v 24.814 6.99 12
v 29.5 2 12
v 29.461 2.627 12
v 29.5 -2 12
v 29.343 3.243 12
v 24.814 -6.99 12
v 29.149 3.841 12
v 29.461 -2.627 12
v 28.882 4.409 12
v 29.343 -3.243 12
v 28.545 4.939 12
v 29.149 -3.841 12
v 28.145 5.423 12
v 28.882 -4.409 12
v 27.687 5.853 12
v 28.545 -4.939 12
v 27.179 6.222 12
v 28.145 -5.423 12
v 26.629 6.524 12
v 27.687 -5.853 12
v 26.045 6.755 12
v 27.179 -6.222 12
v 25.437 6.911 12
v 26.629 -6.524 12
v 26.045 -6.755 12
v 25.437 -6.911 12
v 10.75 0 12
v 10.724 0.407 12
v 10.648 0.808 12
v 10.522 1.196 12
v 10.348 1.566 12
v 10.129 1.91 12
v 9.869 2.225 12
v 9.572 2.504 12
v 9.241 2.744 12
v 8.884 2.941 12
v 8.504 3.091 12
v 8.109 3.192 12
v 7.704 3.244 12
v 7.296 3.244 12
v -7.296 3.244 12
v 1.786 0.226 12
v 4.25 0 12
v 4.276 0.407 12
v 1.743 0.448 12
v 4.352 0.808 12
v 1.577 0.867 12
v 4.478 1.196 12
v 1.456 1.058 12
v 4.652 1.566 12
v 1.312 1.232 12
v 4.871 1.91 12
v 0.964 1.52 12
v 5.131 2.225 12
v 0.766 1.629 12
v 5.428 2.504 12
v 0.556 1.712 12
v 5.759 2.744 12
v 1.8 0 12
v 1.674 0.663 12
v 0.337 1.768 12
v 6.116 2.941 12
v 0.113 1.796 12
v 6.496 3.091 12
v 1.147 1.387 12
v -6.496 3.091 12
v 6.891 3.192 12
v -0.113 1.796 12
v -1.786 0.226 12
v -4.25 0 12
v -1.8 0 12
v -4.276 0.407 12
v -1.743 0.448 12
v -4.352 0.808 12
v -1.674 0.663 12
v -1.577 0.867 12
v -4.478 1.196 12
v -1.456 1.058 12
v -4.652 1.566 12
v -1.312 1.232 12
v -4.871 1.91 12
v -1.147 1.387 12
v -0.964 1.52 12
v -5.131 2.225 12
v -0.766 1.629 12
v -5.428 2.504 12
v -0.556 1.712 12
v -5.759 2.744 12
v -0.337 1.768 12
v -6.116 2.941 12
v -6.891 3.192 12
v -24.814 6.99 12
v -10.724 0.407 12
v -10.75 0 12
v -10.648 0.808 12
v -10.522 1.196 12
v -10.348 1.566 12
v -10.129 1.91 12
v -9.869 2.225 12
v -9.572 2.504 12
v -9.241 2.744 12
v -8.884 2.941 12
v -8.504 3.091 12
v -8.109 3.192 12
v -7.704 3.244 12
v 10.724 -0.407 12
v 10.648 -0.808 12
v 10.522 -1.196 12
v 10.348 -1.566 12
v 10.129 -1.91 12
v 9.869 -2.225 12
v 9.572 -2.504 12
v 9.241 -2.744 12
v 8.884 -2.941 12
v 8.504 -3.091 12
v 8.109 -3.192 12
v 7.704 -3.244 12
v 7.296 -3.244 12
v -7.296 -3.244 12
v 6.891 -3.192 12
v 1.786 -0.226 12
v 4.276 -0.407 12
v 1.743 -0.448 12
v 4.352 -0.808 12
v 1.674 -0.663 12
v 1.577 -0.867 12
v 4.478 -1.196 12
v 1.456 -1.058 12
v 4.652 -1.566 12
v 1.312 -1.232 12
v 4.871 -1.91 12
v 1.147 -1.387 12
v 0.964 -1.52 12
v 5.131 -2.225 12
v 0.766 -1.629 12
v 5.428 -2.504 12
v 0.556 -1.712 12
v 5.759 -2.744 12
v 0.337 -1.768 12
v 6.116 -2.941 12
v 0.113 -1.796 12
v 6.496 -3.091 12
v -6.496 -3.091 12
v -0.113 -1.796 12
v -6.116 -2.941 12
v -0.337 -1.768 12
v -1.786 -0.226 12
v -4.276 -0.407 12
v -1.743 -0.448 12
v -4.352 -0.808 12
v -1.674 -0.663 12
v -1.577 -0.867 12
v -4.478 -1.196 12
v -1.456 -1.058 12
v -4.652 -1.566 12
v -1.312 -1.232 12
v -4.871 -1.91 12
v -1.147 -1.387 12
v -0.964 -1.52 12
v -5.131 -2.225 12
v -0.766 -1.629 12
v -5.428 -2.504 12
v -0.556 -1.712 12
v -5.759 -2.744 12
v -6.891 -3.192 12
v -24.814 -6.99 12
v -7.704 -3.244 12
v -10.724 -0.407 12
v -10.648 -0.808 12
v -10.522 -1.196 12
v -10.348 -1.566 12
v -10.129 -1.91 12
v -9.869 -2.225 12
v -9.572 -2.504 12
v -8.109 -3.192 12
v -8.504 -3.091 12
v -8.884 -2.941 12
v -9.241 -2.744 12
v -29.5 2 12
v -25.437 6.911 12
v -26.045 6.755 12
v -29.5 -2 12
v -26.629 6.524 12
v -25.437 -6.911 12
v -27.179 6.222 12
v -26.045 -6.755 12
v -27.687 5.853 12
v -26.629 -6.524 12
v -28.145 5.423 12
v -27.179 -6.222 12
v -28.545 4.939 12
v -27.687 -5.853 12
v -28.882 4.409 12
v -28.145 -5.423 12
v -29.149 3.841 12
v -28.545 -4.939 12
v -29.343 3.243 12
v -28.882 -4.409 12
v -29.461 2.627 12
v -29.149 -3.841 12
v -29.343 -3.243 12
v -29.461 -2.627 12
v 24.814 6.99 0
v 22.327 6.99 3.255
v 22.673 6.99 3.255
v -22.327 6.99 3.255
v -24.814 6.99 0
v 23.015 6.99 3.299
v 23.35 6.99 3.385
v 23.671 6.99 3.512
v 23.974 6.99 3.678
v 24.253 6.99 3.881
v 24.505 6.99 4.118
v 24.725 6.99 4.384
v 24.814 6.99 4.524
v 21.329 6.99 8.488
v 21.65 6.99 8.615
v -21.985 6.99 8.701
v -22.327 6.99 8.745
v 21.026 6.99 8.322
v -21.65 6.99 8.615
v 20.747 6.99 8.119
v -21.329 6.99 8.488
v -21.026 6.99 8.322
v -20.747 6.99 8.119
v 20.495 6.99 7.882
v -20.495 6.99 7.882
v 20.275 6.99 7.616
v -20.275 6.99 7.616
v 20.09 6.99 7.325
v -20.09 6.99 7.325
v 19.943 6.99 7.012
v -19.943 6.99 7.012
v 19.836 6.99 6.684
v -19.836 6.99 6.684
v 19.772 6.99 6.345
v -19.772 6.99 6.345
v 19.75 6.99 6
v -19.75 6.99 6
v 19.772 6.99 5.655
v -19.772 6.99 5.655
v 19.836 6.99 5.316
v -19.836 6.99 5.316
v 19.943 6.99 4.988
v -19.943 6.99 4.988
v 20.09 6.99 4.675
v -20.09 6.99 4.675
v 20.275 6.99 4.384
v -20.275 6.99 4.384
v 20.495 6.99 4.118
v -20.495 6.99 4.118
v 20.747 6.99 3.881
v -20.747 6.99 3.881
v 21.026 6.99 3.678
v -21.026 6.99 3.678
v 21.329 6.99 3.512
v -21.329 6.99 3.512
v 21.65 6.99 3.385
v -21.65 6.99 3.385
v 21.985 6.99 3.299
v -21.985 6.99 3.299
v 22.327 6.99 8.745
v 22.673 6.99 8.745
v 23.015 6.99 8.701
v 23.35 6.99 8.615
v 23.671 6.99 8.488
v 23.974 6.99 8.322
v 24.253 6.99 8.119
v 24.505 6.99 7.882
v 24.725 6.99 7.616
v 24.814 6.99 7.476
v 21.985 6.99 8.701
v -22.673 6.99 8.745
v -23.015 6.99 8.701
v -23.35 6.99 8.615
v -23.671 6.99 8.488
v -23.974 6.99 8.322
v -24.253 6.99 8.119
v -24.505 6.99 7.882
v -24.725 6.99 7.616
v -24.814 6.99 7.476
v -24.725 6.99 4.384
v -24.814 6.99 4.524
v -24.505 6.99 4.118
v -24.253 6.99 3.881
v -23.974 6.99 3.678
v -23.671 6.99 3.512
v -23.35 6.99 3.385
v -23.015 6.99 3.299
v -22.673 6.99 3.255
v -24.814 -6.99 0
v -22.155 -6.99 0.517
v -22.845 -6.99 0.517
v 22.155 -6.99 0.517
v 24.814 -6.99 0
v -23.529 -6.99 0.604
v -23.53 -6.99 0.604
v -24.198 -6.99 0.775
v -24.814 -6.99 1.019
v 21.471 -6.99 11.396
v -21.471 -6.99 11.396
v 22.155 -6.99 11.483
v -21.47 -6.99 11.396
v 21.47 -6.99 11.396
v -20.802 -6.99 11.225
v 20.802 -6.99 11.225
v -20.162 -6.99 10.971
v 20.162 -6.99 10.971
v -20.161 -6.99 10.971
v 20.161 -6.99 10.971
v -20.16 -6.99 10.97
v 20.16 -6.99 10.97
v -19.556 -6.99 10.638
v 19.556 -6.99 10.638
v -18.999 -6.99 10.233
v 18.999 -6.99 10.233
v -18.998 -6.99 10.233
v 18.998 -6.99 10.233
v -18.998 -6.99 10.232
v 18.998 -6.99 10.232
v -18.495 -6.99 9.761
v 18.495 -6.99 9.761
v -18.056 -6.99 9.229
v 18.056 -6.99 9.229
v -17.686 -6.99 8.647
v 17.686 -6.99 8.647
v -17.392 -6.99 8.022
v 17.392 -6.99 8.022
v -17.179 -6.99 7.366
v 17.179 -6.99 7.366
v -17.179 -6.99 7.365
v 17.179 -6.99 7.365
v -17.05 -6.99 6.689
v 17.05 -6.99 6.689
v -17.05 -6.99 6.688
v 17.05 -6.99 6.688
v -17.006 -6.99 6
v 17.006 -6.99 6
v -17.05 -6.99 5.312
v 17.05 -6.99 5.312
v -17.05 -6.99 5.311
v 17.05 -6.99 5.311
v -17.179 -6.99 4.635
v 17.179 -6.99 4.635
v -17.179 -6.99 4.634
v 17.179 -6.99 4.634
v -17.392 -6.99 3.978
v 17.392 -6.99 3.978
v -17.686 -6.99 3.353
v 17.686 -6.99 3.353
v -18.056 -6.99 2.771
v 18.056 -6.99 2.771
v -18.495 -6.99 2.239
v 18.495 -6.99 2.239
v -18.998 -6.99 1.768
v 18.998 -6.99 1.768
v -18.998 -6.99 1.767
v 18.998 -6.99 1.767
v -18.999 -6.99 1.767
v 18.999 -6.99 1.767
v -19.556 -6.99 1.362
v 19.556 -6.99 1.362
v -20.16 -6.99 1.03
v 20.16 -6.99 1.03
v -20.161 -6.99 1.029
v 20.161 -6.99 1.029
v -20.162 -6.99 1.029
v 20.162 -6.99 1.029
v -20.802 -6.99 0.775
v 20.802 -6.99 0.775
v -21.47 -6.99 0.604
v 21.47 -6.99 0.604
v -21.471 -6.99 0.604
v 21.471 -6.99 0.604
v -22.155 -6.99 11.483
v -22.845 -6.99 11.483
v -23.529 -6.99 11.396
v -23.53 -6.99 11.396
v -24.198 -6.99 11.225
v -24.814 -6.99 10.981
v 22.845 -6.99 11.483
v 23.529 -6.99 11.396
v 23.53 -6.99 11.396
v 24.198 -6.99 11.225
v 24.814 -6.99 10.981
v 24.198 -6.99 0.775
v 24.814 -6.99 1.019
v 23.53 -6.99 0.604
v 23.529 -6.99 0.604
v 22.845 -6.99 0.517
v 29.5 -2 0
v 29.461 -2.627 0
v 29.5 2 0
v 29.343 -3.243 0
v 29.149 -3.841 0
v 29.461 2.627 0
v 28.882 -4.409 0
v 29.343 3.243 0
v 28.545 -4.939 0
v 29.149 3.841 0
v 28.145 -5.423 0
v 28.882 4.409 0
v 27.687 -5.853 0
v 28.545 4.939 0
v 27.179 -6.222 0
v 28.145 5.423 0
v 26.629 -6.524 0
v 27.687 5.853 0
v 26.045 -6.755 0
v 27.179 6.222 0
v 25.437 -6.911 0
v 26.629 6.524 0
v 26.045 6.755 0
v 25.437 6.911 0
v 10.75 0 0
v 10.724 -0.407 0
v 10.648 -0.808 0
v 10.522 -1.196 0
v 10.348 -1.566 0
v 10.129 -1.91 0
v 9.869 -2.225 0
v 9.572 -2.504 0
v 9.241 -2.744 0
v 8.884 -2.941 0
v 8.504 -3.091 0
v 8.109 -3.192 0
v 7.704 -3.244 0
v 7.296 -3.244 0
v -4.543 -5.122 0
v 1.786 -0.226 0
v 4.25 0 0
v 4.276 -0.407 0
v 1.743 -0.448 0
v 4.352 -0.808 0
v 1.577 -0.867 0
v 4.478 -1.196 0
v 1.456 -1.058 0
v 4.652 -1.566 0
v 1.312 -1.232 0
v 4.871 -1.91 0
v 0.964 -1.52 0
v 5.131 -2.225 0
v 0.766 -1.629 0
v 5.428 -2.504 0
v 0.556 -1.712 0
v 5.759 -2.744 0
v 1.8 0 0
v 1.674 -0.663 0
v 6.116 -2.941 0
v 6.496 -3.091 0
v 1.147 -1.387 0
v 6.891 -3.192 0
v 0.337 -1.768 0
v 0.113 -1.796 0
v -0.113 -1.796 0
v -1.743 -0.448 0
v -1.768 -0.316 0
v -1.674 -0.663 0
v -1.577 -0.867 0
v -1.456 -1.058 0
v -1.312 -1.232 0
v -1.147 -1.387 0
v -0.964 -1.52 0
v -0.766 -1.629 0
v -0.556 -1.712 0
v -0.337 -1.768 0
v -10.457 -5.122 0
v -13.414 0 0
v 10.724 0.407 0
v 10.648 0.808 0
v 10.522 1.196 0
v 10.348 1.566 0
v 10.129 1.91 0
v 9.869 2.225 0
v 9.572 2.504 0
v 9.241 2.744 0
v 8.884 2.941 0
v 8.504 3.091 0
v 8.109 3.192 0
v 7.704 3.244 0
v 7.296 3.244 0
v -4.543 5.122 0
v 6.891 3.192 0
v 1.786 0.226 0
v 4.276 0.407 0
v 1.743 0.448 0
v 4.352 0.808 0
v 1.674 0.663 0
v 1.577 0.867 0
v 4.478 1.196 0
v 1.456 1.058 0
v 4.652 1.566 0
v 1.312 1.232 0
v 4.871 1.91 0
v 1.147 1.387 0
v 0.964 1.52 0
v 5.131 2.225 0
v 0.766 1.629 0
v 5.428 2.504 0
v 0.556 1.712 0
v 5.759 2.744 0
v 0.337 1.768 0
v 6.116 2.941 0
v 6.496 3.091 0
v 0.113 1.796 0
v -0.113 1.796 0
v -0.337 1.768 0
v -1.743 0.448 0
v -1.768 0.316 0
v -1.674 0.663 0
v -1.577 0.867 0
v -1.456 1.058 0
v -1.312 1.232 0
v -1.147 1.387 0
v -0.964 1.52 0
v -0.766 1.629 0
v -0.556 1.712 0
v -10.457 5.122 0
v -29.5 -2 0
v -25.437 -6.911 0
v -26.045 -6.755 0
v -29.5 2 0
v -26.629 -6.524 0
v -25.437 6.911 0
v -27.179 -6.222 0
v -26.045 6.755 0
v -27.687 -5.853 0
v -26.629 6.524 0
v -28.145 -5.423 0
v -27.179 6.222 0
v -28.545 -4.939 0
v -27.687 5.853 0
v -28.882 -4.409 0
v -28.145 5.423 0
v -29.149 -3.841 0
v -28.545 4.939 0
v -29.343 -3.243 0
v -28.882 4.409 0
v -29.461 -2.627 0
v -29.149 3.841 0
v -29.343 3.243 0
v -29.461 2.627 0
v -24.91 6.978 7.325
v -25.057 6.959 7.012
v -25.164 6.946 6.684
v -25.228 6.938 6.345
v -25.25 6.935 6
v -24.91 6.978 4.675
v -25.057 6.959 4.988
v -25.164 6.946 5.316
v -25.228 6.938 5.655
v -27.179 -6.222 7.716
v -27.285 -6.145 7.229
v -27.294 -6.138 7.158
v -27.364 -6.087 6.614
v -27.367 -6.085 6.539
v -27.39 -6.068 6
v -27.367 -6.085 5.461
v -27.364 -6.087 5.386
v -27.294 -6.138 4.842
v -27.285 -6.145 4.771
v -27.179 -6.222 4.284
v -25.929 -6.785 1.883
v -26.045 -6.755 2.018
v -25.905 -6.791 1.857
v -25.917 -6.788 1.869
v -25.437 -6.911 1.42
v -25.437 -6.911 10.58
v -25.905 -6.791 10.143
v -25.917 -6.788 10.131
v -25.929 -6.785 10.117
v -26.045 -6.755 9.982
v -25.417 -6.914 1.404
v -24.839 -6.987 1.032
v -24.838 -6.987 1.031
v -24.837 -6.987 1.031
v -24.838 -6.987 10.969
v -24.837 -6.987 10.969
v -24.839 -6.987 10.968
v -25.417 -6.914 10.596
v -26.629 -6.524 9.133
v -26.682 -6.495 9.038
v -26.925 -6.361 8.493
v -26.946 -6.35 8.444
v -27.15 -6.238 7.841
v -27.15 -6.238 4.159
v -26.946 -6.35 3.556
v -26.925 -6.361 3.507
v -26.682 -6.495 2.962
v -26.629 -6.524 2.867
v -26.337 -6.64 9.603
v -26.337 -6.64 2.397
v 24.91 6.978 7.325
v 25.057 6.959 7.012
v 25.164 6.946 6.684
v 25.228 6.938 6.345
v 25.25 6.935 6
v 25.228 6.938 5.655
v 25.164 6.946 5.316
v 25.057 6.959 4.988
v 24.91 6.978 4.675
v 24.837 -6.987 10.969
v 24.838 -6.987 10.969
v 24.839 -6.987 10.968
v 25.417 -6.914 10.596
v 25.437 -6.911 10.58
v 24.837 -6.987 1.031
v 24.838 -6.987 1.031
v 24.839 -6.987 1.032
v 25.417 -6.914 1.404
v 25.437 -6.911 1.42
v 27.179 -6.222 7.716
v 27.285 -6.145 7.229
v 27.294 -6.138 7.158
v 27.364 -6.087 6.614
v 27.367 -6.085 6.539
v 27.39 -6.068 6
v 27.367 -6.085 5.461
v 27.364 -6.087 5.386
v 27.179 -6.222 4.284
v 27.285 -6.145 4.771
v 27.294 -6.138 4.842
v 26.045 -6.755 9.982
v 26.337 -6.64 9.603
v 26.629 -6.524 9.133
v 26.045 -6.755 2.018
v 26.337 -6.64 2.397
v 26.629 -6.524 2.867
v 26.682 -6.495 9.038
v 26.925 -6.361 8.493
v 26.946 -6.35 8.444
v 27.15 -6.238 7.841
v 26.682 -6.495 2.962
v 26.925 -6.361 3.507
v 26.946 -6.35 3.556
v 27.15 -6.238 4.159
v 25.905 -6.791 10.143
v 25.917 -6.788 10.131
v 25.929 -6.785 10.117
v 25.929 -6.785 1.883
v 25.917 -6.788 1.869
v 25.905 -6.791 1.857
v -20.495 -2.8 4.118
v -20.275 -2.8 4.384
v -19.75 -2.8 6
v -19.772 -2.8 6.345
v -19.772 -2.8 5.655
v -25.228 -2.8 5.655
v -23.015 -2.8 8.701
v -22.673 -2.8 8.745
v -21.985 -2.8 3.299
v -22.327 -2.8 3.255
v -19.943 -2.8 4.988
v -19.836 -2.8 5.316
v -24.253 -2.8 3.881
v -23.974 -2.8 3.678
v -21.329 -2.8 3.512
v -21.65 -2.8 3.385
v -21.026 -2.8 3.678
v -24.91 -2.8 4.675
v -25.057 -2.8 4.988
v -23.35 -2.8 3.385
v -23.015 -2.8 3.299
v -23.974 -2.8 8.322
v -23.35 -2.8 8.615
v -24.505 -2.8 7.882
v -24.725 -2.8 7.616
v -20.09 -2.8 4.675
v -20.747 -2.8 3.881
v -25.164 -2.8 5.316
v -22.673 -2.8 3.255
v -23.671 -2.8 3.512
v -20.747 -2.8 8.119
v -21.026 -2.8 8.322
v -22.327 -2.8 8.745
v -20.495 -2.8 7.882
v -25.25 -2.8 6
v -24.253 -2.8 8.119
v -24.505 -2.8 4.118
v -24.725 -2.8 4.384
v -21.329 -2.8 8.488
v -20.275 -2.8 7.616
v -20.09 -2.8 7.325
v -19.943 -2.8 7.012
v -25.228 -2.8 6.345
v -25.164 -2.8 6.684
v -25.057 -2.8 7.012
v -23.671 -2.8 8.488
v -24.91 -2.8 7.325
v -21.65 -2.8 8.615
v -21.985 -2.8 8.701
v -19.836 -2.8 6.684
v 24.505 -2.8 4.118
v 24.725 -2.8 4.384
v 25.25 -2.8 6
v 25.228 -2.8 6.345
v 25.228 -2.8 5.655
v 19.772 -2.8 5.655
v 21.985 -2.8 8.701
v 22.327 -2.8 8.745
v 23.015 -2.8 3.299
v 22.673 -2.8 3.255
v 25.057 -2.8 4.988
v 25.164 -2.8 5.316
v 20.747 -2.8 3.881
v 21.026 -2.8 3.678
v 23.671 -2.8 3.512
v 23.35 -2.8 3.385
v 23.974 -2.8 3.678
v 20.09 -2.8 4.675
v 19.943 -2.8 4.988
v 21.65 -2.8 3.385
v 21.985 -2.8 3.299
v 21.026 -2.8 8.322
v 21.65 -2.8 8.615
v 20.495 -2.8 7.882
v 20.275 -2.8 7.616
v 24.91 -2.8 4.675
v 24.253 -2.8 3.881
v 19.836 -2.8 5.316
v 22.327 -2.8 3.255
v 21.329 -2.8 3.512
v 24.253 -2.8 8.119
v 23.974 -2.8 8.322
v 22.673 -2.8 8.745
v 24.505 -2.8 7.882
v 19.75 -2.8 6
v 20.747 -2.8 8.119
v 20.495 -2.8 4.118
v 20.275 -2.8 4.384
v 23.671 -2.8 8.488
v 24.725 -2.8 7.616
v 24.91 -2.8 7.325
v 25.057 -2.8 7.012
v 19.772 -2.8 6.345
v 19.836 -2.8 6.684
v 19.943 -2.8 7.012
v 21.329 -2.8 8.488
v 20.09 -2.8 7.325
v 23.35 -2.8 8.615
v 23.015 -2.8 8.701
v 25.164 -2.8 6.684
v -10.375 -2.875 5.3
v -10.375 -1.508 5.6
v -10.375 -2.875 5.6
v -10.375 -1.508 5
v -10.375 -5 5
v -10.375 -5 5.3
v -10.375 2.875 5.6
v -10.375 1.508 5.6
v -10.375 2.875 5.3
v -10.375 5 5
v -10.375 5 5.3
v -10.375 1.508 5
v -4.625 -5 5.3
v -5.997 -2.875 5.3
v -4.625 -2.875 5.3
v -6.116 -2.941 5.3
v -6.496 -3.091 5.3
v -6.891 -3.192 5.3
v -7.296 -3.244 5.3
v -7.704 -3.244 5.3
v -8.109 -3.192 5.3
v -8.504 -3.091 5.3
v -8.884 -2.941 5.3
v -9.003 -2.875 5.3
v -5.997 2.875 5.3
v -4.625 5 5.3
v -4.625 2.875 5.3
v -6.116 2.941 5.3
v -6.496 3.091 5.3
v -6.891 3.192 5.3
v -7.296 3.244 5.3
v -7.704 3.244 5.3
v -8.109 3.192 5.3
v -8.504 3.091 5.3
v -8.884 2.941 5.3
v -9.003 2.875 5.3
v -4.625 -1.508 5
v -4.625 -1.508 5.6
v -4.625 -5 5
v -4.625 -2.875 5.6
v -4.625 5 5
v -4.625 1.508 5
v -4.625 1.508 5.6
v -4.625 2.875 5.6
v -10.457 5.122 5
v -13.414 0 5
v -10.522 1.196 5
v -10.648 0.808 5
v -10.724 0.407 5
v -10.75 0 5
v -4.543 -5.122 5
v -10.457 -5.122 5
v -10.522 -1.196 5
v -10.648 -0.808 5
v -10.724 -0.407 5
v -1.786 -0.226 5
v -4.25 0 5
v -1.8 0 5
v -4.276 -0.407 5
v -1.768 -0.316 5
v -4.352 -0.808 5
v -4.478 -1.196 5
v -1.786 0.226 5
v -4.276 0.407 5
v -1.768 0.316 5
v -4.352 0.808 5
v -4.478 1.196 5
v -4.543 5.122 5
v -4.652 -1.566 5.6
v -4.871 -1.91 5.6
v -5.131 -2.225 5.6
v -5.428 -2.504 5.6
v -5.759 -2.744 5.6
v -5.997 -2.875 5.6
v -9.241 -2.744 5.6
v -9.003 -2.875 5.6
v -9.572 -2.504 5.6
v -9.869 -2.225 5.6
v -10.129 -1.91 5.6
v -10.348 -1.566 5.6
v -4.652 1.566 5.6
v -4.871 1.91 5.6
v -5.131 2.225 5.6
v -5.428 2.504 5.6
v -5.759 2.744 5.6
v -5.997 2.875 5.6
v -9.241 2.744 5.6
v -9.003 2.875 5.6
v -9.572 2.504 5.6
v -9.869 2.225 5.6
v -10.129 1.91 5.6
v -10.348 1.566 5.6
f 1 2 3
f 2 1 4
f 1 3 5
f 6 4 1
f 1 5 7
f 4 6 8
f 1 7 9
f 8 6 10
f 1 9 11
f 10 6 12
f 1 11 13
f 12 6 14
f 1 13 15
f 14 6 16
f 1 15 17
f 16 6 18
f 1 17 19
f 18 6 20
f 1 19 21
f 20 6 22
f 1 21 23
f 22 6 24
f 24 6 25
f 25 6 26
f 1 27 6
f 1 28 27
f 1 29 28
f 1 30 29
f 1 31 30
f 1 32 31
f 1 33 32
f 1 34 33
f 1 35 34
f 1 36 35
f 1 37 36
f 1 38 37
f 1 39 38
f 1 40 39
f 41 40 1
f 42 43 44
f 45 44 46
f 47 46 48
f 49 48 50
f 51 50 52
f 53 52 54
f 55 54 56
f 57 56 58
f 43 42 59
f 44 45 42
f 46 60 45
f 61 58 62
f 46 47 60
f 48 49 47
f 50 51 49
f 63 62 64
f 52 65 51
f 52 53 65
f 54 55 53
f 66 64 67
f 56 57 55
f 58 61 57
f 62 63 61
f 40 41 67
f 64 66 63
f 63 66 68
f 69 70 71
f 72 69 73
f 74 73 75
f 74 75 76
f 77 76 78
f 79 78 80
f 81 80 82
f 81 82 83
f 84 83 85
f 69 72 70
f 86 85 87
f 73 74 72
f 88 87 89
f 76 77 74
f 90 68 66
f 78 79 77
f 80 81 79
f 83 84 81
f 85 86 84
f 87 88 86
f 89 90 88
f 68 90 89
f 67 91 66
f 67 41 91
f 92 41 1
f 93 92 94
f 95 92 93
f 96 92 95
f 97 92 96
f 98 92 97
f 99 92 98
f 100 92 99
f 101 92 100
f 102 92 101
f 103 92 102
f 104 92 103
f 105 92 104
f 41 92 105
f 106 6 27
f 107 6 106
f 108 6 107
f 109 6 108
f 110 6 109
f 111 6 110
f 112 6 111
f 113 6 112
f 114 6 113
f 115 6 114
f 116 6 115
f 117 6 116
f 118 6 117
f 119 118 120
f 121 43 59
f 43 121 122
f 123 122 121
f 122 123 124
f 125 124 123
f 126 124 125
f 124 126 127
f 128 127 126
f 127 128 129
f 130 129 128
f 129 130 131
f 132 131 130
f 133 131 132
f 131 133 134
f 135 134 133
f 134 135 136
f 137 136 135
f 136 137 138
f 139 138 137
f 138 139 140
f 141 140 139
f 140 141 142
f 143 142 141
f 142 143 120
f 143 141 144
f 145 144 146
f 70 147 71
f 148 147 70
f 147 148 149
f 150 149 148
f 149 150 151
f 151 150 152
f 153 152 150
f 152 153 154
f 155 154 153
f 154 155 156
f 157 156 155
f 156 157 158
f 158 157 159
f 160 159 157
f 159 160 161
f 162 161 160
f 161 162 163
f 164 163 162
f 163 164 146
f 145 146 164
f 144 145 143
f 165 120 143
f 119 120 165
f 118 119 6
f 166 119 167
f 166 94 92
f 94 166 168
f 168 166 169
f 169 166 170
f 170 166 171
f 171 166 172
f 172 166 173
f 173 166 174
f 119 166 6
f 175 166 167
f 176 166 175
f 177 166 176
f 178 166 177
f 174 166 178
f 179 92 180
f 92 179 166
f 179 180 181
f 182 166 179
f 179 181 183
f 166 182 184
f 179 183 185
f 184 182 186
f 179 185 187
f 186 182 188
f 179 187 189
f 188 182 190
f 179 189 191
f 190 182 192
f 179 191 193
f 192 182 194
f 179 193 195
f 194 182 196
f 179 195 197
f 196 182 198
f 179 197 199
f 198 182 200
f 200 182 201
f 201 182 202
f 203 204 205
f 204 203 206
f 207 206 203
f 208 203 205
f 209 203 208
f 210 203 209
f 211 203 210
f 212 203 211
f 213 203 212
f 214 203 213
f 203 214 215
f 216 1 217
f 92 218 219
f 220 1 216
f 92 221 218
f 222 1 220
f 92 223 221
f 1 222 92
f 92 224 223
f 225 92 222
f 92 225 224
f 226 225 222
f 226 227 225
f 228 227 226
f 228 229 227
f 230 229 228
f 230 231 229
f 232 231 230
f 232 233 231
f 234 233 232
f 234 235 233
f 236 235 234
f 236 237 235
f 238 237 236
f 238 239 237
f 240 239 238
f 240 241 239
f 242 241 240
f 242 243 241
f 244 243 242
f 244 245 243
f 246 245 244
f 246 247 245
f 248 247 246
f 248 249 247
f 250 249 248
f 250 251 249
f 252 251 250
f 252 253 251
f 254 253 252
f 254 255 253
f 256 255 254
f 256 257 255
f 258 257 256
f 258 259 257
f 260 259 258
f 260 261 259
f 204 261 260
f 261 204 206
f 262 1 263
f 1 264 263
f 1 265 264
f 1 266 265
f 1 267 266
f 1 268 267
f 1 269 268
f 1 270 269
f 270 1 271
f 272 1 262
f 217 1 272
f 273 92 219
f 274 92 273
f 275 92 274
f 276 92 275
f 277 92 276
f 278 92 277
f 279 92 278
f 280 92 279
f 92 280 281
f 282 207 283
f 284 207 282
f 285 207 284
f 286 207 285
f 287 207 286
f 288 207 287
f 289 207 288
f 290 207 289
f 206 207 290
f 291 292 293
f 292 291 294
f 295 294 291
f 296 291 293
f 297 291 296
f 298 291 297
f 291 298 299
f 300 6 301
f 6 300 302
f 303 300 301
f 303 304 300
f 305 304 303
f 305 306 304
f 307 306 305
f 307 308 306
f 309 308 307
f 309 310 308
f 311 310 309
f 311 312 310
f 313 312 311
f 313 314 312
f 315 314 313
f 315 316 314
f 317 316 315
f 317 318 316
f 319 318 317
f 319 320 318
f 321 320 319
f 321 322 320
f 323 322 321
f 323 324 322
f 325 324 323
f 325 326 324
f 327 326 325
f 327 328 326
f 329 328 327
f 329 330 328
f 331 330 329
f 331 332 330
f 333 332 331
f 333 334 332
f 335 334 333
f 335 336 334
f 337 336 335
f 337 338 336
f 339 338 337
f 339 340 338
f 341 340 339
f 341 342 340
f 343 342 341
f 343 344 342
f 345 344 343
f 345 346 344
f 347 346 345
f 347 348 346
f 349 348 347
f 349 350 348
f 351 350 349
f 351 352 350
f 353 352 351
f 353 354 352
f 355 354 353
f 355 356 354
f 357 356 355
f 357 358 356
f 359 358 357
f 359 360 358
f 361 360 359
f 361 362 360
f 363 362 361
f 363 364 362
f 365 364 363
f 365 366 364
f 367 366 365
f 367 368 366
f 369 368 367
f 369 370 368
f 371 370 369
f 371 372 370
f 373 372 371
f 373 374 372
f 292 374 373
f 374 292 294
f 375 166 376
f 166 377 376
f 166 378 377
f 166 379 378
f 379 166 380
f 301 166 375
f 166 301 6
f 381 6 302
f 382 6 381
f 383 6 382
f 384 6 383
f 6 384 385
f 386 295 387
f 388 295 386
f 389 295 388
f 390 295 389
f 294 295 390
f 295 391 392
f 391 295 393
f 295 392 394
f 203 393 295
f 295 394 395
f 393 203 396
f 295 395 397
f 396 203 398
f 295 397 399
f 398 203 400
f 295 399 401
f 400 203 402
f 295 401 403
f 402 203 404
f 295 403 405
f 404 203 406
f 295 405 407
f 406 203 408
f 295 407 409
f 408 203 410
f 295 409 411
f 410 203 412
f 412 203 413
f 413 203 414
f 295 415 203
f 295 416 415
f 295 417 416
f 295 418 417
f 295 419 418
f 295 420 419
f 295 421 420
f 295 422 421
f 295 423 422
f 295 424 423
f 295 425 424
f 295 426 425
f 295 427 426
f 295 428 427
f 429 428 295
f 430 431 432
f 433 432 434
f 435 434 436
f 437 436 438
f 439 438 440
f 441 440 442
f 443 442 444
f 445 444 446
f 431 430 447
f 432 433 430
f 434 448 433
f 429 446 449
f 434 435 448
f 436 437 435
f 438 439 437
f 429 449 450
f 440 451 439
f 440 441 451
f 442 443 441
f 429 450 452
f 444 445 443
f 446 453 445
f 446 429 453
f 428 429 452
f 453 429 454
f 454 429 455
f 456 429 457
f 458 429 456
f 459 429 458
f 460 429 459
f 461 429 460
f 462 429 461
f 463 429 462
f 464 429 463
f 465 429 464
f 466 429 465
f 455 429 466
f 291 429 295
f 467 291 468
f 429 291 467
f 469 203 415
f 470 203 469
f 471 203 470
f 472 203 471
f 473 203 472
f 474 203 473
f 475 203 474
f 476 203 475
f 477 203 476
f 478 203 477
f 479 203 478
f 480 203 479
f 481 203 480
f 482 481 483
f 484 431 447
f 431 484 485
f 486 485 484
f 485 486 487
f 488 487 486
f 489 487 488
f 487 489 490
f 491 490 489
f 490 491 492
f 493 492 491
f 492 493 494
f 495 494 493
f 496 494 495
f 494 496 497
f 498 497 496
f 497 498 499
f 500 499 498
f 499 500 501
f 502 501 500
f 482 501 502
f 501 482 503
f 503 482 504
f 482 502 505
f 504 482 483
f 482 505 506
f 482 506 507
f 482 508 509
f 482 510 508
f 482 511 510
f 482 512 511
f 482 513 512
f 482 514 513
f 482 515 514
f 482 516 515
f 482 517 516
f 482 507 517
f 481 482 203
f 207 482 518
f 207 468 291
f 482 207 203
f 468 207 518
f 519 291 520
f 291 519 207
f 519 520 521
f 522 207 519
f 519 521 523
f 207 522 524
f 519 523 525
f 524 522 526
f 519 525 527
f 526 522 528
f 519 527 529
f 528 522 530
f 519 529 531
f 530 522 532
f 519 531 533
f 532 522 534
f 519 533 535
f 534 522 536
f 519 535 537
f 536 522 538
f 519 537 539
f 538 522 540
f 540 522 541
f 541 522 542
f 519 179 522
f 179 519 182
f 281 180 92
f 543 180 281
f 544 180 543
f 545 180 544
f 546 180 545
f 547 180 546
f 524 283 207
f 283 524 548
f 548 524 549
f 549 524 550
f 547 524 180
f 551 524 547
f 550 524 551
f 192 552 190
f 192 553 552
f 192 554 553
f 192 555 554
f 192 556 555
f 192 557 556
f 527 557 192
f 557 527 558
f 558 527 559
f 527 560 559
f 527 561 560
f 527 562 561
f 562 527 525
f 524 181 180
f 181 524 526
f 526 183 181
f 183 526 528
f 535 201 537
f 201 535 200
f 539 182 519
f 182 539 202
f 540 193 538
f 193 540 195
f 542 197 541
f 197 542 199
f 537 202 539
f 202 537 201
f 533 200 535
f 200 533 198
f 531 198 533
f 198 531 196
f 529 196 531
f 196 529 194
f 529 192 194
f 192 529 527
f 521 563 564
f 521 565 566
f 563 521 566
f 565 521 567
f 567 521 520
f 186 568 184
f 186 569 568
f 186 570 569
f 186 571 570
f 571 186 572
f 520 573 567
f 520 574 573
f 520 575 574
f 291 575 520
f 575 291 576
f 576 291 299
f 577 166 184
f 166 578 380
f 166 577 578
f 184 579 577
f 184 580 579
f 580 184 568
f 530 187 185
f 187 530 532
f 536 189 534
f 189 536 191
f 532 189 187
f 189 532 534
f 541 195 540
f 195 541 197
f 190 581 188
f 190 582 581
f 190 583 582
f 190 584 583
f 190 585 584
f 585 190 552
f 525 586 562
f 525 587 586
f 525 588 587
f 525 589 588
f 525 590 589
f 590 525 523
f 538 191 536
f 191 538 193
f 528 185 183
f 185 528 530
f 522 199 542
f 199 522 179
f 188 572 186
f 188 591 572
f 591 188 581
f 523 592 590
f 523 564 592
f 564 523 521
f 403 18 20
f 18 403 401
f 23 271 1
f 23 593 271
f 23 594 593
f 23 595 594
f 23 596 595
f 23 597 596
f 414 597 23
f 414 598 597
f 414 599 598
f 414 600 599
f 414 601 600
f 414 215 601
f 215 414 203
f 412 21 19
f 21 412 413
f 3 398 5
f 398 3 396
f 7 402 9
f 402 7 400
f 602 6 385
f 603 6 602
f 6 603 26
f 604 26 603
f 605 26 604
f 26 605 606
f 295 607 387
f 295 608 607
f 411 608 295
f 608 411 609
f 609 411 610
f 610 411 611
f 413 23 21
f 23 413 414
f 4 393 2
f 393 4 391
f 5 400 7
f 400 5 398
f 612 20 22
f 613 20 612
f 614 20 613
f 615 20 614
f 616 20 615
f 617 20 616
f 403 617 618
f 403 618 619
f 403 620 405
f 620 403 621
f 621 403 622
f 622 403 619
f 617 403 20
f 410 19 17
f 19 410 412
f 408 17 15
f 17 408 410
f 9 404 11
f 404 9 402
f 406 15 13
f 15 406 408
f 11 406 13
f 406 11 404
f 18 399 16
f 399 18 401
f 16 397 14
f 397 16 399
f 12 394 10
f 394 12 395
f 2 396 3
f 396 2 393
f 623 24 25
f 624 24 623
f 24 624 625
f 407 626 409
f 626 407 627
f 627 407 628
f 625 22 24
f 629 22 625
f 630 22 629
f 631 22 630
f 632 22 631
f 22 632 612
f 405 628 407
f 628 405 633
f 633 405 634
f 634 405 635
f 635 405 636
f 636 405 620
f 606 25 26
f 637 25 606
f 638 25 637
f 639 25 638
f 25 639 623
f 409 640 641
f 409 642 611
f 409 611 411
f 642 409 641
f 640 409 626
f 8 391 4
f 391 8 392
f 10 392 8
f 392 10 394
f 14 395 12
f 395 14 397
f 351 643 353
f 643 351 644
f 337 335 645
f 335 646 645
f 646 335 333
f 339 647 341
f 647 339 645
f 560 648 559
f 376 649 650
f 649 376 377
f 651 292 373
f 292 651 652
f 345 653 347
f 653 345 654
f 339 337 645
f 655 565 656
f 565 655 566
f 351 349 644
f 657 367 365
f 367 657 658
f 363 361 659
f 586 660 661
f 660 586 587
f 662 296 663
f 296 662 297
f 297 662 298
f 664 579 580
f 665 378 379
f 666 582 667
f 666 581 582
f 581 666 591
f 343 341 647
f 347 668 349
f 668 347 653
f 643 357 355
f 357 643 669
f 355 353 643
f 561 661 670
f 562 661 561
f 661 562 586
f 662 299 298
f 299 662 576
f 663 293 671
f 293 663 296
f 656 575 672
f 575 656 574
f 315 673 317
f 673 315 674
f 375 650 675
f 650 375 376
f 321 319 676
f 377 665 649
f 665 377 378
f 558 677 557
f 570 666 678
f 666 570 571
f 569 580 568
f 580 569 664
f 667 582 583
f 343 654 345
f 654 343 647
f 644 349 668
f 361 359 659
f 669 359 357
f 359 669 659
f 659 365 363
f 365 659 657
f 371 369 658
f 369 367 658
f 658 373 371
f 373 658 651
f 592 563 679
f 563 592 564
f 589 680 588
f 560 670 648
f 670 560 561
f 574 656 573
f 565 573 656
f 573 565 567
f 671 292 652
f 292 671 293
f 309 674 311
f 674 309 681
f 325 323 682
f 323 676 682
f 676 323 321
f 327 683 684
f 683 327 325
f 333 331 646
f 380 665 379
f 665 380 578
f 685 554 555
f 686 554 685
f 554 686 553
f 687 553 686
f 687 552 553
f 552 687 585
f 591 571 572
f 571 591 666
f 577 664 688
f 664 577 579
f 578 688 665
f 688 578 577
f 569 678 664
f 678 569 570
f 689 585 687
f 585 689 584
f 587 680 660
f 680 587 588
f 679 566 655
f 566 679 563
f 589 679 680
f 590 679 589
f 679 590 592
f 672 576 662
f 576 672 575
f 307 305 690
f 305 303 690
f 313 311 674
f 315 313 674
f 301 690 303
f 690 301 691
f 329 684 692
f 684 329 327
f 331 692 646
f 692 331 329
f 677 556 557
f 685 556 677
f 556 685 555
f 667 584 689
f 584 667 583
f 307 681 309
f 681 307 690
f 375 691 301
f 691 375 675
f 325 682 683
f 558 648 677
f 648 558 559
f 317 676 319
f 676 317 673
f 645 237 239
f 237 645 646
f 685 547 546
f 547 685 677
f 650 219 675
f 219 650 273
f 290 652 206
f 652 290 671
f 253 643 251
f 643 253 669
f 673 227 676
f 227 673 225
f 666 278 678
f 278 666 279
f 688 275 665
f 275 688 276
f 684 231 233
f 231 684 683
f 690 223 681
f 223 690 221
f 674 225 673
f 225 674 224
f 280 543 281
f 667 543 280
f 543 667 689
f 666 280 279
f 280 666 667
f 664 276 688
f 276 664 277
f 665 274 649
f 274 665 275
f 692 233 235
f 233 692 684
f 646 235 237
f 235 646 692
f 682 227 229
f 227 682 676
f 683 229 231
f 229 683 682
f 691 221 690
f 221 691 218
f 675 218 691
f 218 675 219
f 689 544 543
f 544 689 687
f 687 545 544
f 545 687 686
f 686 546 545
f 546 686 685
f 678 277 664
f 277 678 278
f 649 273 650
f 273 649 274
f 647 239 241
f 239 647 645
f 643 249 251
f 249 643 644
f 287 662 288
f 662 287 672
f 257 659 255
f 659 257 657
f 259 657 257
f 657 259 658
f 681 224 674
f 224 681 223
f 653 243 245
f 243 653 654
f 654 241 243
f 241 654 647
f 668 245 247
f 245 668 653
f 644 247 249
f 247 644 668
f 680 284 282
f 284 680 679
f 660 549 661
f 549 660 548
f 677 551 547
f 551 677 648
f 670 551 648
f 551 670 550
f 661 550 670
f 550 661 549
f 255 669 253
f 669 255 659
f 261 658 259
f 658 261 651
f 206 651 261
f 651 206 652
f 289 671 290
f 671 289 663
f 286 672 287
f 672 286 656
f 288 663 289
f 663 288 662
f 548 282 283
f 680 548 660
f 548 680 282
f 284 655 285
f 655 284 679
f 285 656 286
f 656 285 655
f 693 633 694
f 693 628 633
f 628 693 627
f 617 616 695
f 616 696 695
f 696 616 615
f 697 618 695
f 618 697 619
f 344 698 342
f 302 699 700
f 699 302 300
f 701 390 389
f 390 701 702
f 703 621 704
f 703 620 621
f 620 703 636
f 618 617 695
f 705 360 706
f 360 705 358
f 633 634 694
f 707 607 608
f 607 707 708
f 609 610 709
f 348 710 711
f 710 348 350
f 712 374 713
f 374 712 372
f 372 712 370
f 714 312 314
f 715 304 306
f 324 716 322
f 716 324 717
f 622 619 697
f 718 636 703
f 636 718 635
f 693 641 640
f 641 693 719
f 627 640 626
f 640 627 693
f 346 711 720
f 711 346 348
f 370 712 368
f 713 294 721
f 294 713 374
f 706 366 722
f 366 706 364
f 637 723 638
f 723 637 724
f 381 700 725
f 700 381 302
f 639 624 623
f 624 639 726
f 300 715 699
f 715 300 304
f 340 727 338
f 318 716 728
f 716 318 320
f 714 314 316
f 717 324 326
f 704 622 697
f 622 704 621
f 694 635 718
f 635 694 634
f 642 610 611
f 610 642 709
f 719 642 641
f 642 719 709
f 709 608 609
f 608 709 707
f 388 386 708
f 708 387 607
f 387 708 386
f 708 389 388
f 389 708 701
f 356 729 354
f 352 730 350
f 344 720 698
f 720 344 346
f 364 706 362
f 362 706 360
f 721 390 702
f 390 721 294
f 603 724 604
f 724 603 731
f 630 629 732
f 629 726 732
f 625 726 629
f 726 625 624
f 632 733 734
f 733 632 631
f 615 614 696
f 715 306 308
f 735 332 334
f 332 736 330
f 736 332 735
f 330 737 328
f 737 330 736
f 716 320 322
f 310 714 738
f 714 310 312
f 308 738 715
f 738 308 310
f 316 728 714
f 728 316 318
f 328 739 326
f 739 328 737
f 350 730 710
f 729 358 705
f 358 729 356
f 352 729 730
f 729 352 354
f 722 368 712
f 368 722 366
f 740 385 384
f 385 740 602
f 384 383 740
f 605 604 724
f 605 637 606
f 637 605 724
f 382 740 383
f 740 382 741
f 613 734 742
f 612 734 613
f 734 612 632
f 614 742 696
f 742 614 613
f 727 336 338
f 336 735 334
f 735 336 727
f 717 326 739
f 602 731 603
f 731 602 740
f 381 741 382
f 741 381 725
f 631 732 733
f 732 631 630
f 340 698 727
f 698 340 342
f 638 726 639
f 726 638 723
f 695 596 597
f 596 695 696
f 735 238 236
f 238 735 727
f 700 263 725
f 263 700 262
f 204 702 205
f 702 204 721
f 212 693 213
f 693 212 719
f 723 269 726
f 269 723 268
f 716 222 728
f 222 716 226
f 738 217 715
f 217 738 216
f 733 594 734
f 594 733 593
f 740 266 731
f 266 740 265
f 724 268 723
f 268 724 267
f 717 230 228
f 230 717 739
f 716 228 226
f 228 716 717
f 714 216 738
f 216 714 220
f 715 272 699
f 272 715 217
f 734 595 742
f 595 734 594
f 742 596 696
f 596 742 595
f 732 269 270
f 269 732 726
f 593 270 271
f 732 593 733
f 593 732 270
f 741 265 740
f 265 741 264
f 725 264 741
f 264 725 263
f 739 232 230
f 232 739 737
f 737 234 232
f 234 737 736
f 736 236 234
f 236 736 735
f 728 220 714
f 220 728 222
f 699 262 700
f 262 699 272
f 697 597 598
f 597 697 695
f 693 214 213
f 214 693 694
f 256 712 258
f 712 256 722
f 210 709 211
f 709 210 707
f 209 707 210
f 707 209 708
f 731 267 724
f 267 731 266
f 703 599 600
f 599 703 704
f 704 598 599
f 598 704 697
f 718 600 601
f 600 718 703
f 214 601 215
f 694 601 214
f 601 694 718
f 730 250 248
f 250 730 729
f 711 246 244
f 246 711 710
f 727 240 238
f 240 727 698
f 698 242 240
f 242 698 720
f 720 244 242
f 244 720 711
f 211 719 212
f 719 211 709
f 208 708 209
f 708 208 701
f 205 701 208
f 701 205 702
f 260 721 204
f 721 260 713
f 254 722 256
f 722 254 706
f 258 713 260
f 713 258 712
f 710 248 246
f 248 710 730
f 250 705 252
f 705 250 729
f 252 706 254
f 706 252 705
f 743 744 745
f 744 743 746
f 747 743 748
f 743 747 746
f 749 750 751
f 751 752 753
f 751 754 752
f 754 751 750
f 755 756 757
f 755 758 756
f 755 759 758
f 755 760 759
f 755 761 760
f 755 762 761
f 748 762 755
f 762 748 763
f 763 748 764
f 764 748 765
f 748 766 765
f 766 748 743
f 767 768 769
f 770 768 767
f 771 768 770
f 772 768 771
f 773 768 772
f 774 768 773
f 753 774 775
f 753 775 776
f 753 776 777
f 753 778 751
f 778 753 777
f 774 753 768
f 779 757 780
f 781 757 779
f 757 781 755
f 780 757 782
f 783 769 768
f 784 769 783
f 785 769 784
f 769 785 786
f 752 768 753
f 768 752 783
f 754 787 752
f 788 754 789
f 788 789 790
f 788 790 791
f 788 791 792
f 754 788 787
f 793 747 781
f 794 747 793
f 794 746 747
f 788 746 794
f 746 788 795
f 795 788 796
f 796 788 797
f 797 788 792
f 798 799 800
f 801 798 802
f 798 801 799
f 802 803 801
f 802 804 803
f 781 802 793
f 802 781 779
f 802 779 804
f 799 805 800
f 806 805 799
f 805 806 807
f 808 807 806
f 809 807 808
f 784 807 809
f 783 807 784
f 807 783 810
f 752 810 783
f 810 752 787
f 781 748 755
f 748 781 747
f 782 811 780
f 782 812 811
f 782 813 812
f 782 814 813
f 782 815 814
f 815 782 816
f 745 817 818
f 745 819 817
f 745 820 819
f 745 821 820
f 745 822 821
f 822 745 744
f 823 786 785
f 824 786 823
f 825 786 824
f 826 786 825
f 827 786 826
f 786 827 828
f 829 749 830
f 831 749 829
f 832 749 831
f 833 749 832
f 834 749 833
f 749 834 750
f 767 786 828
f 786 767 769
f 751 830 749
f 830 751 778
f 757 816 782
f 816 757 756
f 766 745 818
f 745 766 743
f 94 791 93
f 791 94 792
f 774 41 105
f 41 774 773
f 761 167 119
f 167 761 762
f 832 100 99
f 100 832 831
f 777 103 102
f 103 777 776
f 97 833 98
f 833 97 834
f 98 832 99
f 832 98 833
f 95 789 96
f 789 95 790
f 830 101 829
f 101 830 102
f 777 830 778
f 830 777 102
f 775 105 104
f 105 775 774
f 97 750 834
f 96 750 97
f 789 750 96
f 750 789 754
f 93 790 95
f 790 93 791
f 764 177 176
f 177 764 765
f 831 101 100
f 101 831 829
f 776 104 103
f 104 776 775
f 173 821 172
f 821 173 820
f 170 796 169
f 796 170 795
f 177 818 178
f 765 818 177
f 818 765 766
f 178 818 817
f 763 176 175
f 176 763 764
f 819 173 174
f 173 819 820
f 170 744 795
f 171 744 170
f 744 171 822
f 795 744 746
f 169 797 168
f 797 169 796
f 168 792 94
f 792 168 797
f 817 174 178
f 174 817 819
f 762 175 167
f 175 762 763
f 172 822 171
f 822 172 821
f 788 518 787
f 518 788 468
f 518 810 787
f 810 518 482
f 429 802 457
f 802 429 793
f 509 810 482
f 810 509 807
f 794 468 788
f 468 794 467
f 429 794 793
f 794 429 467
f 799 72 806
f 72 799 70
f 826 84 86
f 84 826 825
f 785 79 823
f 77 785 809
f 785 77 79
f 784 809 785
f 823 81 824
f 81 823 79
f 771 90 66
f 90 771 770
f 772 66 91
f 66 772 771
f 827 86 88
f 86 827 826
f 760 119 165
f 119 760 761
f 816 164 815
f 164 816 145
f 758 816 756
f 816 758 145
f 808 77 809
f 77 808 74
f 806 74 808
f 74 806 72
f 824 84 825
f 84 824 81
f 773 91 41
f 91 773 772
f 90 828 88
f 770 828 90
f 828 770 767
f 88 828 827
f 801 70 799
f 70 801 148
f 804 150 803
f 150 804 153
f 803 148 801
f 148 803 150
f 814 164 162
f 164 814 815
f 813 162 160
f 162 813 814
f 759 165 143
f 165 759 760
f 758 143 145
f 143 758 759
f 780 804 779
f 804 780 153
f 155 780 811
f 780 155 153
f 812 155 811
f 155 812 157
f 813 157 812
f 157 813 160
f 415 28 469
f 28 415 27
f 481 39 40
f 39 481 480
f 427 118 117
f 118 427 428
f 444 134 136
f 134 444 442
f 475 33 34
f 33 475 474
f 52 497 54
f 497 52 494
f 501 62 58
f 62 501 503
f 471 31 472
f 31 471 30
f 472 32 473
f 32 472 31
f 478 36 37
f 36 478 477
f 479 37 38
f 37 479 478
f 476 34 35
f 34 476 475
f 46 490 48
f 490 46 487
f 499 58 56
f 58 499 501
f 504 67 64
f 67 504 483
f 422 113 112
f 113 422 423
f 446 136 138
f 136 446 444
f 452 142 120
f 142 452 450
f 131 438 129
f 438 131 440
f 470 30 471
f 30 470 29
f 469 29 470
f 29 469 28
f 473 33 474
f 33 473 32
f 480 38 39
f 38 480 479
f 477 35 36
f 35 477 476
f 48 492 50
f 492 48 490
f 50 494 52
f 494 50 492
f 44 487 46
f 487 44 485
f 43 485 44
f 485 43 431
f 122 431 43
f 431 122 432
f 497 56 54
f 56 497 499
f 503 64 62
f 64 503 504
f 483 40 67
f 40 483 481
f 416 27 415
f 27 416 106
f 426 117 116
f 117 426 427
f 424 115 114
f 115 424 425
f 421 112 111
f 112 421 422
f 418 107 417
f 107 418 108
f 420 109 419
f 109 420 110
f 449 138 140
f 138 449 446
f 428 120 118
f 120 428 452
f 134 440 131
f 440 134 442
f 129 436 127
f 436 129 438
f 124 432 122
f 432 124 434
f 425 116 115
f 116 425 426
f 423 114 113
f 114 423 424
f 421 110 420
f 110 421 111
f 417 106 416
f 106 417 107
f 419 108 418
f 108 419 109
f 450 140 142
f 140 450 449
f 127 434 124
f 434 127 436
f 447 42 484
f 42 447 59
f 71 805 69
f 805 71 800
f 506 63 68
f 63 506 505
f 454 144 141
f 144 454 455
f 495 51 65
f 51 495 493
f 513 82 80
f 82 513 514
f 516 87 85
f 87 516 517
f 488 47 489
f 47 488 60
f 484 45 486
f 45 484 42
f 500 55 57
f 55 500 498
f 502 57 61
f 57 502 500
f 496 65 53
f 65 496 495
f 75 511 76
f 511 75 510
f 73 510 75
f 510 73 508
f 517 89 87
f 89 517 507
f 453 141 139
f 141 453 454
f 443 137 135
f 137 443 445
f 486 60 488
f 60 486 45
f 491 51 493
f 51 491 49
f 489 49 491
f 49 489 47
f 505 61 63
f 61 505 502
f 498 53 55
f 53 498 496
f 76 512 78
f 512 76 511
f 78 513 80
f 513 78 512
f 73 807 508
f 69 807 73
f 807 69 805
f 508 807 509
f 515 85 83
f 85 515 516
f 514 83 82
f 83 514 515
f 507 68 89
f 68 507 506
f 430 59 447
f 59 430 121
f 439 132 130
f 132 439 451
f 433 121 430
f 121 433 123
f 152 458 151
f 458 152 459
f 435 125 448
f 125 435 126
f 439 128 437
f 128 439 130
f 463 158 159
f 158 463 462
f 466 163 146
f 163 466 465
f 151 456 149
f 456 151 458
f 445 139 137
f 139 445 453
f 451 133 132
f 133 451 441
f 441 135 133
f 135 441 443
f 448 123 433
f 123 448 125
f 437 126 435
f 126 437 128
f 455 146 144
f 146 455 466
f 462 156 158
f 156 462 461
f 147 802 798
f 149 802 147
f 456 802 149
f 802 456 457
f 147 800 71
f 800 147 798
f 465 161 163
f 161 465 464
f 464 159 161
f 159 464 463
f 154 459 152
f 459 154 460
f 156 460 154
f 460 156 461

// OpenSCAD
$fn = 50;


difference() {
	union() {
		hull() {
			translate(v = [-9.5000000000, 2.0000000000, 0]) {
				cylinder(h = 12, r = 5);
			}
			translate(v = [9.5000000000, 2.0000000000, 0]) {
				cylinder(h = 12, r = 5);
			}
			translate(v = [-9.5000000000, -2.0000000000, 0]) {
				cylinder(h = 12, r = 5);
			}
			translate(v = [9.5000000000, -2.0000000000, 0]) {
				cylinder(h = 12, r = 5);
			}
		}
		translate(v = [-15.0000000000, 0.0000000000, 0]) {
			hull() {
				translate(v = [-9.5000000000, 2.0000000000, 0]) {
					cylinder(h = 12, r = 5);
				}
				translate(v = [9.5000000000, 2.0000000000, 0]) {
					cylinder(h = 12, r = 5);
				}
				translate(v = [-9.5000000000, -2.0000000000, 0]) {
					cylinder(h = 12, r = 5);
				}
				translate(v = [9.5000000000, -2.0000000000, 0]) {
					cylinder(h = 12, r = 5);
				}
			}
		}
		translate(v = [15.0000000000, 0.0000000000, 0]) {
			hull() {
				translate(v = [-9.5000000000, 2.0000000000, 0]) {
					cylinder(h = 12, r = 5);
				}
				translate(v = [9.5000000000, 2.0000000000, 0]) {
					cylinder(h = 12, r = 5);
				}
				translate(v = [-9.5000000000, -2.0000000000, 0]) {
					cylinder(h = 12, r = 5);
				}
				translate(v = [9.5000000000, -2.0000000000, 0]) {
					cylinder(h = 12, r = 5);
				}
			}
		}
	}
	union() {
		translate(v = [-22.5000000000, -7.0000000000, 6.0000000000]) {
			rotate(a = [90, 0, 0]) {
				difference() {
					union() {
						#translate(v = [0, 0, -14.0000000000]) {
							cylinder(h = 14, r = 2.2500000000);
						}
						#translate(v = [0, 0, -4.2000000000]) {
							cylinder(h = 4.2000000000, r1 = 2.7500000000, r2 = 5.5000000000);
						}
						#translate(v = [0, 0, -14.0000000000]) {
							cylinder(h = 14, r = 2.7500000000);
						}
						#translate(v = [0, 0, -14.0000000000]) {
							cylinder(h = 14, r = 2.2500000000);
						}
					}
					union();
				}
			}
		}
		translate(v = [22.5000000000, -7.0000000000, 6.0000000000]) {
			rotate(a = [90, 0, 0]) {
				difference() {
					union() {
						#translate(v = [0, 0, -14.0000000000]) {
							cylinder(h = 14, r = 2.2500000000);
						}
						#translate(v = [0, 0, -4.2000000000]) {
							cylinder(h = 4.2000000000, r1 = 2.7500000000, r2 = 5.5000000000);
						}
						#translate(v = [0, 0, -14.0000000000]) {
							cylinder(h = 14, r = 2.7500000000);
						}
						#translate(v = [0, 0, -14.0000000000]) {
							cylinder(h = 14, r = 2.2500000000);
						}
					}
					union();
				}
			}
		}
		translate(v = [-7.5000000000, 0.0000000000, 0]) {
			rotate(a = [0, 0, 0]) {
				difference() {
					union() {
						#translate(v = [-2.8750000000, -5.0000000000, -0.3000000000]) {
							cube(size = [5.7500000000, 10, 0.3000000000]);
						}
						#translate(v = [-2.8750000000, -2.8750000000, -0.6000000000]) {
							cube(size = [5.7500000000, 5.7500000000, 0.3000000000]);
						}
						#translate(v = [-2.8750000000, -5.0000000000, 5]) {
							cube(size = [5.7500000000, 10, 0.3000000000]);
						}
						#translate(v = [-2.8750000000, -2.8750000000, 5.3000000000]) {
							cube(size = [5.7500000000, 5.7500000000, 0.3000000000]);
						}
						#translate(v = [0, 0, -100.0000000000]) {
							cylinder(h = 200, r = 3.2500000000);
						}
						#linear_extrude(height = 5) {
							polygon(points = [[5.9142500000, 0.0000000000], [2.9571250000, 5.1218907443], [-2.9571250000, 5.1218907443], [-5.9142500000, 0.0000000000], [-2.9571250000, -5.1218907443], [2.9571250000, -5.1218907443]]);
						}
						#translate(v = [-2.8750000000, -5.0000000000, -0.3000000000]) {
							cube(size = [5.7500000000, 10, 0.3000000000]);
						}
						#translate(v = [-2.8750000000, -2.8750000000, -0.6000000000]) {
							cube(size = [5.7500000000, 5.7500000000, 0.3000000000]);
						}
						#translate(v = [-2.8750000000, -5.0000000000, 5]) {
							cube(size = [5.7500000000, 10, 0.3000000000]);
						}
						#translate(v = [-2.8750000000, -2.8750000000, 5.3000000000]) {
							cube(size = [5.7500000000, 5.7500000000, 0.3000000000]);
						}
						#translate(v = [0, 0, -100.0000000000]) {
							cylinder(h = 200, r = 3.2500000000);
						}
						#translate(v = [-2.8750000000, -5.0000000000, -0.3000000000]) {
							cube(size = [5.7500000000, 10, 0.3000000000]);
						}
						#translate(v = [-2.8750000000, -2.8750000000, -0.6000000000]) {
							cube(size = [5.7500000000, 5.7500000000, 0.3000000000]);
						}
						#translate(v = [-2.8750000000, -5.0000000000, 5]) {
							cube(size = [5.7500000000, 10, 0.3000000000]);
						}
						#translate(v = [-2.8750000000, -2.8750000000, 5.3000000000]) {
							cube(size = [5.7500000000, 5.7500000000, 0.3000000000]);
						}
						#translate(v = [0, 0, -100.0000000000]) {
							cylinder(h = 200, r = 3.2500000000);
						}
					}
					union();
				}
			}
		}
		translate(v = [-7.5000000000, 0.0000000000, 0]) {
			translate(v = [0, 0, -100]) {
				cylinder(h = 200, r = 3.2500000000);
			}
		}
		translate(v = [7.5000000000, 0.0000000000, 0]) {
			translate(v = [0, 0, -100]) {
				cylinder(h = 200, r = 3.2500000000);
			}
		}
		translate(v = [-7.5000000000, 0.0000000000, 0]) {
			translate(v = [0, 0, -100]) {
				cylinder(h = 200, r = 1.8000000000);
			}
		}
		translate(v = [0, 0, -100]) {
			cylinder(h = 200, r = 1.8000000000);
		}
		translate(v = [7.5000000000, 0.0000000000, 0]) {
			translate(v = [0, 0, -100]) {
				cylinder(h = 200, r = 1.8000000000);
			}
		}
	}
}
